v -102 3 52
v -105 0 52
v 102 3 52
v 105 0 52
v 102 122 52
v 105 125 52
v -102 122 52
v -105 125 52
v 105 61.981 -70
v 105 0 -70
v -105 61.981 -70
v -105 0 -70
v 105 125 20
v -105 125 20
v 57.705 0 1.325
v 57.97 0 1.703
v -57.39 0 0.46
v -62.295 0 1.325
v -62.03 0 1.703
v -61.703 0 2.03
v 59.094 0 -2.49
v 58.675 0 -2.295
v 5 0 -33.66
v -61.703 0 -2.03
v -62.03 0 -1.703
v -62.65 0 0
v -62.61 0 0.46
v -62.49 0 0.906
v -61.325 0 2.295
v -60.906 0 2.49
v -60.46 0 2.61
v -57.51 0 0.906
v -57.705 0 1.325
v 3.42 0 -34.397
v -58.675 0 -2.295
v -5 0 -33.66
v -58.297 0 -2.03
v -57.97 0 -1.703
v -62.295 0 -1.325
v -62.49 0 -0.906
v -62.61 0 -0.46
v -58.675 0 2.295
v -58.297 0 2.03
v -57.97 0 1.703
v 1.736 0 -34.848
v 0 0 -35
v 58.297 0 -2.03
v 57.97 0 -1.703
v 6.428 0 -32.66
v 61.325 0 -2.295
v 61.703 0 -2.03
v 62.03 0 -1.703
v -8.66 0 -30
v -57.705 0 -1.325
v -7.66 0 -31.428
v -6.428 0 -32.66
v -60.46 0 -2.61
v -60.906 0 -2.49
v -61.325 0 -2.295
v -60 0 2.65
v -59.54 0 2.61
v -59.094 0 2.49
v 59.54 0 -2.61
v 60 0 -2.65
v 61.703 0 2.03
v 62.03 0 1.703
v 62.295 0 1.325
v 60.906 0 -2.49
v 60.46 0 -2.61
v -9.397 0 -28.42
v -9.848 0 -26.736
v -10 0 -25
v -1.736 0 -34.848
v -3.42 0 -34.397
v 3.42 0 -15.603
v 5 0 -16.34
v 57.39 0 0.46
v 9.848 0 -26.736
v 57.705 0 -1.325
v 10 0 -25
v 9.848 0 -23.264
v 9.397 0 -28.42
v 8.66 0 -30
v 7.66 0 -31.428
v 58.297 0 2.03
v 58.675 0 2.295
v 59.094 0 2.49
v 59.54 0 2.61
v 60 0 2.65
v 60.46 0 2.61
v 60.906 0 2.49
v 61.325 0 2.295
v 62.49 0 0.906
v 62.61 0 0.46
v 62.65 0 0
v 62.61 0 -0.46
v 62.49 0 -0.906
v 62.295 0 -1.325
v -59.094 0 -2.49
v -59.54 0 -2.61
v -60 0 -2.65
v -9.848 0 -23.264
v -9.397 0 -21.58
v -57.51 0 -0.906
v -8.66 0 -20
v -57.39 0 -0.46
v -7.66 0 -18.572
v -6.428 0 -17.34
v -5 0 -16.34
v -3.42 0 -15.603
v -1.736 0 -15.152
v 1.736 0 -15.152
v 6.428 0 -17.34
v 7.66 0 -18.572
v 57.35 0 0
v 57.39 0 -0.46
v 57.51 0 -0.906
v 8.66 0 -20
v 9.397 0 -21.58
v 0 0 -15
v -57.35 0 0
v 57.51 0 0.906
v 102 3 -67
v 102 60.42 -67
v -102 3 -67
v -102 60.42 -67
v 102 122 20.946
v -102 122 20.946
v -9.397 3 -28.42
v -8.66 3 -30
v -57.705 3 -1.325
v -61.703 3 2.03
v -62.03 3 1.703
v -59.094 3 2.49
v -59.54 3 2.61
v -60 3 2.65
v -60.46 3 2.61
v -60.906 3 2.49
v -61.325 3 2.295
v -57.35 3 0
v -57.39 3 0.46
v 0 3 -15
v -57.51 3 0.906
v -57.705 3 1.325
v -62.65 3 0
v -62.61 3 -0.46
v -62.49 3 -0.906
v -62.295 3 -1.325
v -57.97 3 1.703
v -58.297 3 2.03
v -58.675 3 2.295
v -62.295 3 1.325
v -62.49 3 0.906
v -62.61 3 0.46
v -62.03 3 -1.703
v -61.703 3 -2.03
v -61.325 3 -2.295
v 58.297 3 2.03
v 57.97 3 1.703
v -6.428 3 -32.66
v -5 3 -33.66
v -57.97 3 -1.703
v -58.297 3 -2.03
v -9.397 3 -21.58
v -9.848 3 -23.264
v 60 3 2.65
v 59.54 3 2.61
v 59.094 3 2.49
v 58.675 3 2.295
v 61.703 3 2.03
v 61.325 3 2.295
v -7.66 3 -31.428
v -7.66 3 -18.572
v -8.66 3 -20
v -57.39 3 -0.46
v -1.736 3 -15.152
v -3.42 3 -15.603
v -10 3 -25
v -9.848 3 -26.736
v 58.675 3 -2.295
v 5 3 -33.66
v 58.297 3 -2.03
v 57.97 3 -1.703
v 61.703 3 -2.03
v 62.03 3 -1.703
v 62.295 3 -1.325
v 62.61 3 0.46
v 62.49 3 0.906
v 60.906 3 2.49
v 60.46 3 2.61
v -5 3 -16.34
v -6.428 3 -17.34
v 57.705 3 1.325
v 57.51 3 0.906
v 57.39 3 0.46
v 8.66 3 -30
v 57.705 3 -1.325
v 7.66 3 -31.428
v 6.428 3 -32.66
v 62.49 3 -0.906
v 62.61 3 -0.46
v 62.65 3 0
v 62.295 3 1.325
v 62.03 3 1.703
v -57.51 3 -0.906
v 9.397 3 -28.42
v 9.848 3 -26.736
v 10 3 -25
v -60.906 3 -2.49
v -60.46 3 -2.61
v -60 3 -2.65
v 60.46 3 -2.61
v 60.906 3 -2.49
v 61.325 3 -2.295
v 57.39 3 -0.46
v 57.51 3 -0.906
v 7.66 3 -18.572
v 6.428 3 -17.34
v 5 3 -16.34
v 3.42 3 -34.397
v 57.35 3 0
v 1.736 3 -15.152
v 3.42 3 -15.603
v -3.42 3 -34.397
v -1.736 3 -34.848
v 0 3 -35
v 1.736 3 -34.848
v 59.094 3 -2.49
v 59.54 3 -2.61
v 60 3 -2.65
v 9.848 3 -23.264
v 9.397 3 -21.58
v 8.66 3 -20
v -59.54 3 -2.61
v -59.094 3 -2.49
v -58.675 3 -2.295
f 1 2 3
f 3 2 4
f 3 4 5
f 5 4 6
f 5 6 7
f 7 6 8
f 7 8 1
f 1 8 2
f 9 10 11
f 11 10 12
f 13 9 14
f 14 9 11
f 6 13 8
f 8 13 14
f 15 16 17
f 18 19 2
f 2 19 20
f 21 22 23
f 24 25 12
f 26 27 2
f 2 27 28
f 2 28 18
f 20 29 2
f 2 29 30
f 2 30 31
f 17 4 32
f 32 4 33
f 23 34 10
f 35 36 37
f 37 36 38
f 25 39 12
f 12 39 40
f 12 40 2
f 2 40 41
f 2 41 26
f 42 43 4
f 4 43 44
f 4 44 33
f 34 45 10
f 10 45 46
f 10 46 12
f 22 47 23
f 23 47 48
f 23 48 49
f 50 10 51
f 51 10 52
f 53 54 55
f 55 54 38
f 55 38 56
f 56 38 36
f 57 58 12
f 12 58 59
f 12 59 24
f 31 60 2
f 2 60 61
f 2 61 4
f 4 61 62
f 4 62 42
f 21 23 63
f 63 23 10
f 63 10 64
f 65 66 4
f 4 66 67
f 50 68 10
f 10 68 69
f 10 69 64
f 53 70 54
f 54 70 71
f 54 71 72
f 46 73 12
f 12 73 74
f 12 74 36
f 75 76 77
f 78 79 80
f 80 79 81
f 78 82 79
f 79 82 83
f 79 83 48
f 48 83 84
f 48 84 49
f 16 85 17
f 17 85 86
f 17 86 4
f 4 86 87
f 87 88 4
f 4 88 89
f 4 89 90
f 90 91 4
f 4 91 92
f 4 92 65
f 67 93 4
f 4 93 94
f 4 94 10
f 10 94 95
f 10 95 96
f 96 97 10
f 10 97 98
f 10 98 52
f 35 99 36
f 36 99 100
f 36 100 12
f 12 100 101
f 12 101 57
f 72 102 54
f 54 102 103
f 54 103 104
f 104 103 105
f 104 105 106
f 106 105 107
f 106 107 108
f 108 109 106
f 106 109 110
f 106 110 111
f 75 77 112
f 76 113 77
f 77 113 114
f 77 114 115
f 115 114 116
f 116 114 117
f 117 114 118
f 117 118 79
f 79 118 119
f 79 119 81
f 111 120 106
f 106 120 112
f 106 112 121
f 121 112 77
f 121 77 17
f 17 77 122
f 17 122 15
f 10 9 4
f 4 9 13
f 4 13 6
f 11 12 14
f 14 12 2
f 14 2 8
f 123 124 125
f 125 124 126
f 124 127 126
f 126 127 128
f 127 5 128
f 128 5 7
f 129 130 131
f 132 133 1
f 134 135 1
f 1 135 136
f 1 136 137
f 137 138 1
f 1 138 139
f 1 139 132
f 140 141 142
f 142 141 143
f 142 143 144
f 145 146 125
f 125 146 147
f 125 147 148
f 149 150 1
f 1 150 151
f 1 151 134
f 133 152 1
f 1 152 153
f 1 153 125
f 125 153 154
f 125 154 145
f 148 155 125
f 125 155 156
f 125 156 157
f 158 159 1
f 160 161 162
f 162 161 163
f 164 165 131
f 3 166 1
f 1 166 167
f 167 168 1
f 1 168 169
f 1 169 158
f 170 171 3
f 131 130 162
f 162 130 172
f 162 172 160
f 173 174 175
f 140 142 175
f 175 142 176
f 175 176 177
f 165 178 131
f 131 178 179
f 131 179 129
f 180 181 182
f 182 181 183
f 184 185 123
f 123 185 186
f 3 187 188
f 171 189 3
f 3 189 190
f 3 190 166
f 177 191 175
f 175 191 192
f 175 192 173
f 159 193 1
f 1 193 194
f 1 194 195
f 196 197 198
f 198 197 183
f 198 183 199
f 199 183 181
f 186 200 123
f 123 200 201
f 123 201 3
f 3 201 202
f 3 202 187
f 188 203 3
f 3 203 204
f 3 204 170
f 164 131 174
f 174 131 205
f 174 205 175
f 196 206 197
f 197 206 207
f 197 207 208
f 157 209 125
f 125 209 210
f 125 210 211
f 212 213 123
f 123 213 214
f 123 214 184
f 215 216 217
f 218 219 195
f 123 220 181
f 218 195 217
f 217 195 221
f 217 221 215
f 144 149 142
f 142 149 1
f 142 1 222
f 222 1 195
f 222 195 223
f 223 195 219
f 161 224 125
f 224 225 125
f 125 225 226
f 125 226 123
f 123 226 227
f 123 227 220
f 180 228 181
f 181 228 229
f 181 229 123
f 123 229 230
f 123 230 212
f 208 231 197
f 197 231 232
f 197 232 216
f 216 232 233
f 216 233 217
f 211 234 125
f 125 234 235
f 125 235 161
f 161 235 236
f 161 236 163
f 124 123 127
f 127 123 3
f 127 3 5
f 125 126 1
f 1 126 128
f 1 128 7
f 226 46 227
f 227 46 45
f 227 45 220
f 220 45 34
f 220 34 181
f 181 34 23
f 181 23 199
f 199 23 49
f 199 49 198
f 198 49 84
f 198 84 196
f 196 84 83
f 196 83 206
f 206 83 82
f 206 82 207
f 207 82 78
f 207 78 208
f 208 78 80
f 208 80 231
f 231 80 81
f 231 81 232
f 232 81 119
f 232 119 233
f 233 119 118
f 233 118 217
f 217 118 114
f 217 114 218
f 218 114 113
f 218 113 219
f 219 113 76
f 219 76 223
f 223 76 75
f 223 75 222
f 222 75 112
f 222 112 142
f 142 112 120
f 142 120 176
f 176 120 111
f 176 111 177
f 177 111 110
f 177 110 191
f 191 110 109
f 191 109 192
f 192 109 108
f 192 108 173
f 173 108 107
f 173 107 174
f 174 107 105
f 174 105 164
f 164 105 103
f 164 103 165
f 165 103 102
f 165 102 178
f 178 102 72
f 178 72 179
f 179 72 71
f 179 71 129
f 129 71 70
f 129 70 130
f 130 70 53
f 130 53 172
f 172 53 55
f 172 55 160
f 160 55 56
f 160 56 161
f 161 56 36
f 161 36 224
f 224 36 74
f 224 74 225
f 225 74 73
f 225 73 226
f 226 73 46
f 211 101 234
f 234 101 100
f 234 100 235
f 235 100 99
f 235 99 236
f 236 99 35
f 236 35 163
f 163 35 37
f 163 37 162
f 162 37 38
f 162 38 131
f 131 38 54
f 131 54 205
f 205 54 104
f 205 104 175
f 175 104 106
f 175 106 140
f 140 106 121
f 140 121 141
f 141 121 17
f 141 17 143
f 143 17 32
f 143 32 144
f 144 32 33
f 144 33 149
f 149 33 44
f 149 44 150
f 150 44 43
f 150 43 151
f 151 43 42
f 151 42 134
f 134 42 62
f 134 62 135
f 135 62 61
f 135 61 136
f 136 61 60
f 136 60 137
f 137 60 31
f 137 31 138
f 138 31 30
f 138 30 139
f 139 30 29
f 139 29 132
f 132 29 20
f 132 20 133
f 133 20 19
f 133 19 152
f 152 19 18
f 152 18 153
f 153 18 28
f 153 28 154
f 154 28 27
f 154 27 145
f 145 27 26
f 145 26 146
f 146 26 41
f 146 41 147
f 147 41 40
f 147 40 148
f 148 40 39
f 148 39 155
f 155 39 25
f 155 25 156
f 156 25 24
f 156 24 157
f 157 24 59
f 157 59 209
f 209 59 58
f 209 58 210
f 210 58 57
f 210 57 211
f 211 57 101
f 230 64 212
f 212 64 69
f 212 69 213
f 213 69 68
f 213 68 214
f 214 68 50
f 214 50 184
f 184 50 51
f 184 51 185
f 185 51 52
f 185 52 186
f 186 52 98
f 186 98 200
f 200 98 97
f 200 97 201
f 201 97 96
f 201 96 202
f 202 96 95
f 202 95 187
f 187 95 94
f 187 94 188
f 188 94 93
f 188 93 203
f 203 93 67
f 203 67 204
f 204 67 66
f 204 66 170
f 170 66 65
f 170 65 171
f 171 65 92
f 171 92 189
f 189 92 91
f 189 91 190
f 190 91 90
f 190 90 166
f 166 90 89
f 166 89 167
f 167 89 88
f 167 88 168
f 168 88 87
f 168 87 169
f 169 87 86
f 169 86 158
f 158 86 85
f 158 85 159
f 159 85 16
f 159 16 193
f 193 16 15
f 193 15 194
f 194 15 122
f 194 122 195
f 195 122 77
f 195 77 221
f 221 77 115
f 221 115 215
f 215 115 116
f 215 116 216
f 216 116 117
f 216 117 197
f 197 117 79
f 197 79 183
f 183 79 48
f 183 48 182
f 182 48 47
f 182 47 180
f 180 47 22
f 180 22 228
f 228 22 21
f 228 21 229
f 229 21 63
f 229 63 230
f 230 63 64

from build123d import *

# Parameters (mm, degrees)
EX_BODY_DEPTH        = 210
SHELL_T              = -3
SK_FLOORHOLES_R      = 2.65
SK_FLOORHOLES_R_2    = 10
CUT_FLOORHOLES_DEPTH = 3


with BuildPart() as part:
    # SK_Body → EX_Body (new body)
    with BuildSketch(Plane(origin=(-105, 0, 0), x_dir=(0, 0, -1), z_dir=(1, 0, 0))):
        Polygon((70, 0), (-52, 0), (-52, 125), (-20, 125), (70, 61.981321561), align=None)
    extrude(amount=EX_BODY_DEPTH)

    # Shell
    shell_openings = [part.faces().sort_by_distance(p)[0] for p in [
        (0, 62.5, 52),
    ]]
    offset(amount=SHELL_T, openings=shell_openings, kind=Kind.INTERSECTION)

    # SK_FloorHoles → CUT_FloorHoles (cut)
    with BuildSketch(Plane(origin=(0, 0, 0), x_dir=(1, 0, 0), z_dir=(0, 1, 0))):
        with Locations((60, 0)):
            Circle(SK_FLOORHOLES_R)
        with Locations((-60, 0)):
            Circle(SK_FLOORHOLES_R)
        with Locations((0, 25)):
            Circle(SK_FLOORHOLES_R_2)
    extrude(amount=CUT_FLOORHOLES_DEPTH, mode=Mode.SUBTRACT)


solid = part.part
